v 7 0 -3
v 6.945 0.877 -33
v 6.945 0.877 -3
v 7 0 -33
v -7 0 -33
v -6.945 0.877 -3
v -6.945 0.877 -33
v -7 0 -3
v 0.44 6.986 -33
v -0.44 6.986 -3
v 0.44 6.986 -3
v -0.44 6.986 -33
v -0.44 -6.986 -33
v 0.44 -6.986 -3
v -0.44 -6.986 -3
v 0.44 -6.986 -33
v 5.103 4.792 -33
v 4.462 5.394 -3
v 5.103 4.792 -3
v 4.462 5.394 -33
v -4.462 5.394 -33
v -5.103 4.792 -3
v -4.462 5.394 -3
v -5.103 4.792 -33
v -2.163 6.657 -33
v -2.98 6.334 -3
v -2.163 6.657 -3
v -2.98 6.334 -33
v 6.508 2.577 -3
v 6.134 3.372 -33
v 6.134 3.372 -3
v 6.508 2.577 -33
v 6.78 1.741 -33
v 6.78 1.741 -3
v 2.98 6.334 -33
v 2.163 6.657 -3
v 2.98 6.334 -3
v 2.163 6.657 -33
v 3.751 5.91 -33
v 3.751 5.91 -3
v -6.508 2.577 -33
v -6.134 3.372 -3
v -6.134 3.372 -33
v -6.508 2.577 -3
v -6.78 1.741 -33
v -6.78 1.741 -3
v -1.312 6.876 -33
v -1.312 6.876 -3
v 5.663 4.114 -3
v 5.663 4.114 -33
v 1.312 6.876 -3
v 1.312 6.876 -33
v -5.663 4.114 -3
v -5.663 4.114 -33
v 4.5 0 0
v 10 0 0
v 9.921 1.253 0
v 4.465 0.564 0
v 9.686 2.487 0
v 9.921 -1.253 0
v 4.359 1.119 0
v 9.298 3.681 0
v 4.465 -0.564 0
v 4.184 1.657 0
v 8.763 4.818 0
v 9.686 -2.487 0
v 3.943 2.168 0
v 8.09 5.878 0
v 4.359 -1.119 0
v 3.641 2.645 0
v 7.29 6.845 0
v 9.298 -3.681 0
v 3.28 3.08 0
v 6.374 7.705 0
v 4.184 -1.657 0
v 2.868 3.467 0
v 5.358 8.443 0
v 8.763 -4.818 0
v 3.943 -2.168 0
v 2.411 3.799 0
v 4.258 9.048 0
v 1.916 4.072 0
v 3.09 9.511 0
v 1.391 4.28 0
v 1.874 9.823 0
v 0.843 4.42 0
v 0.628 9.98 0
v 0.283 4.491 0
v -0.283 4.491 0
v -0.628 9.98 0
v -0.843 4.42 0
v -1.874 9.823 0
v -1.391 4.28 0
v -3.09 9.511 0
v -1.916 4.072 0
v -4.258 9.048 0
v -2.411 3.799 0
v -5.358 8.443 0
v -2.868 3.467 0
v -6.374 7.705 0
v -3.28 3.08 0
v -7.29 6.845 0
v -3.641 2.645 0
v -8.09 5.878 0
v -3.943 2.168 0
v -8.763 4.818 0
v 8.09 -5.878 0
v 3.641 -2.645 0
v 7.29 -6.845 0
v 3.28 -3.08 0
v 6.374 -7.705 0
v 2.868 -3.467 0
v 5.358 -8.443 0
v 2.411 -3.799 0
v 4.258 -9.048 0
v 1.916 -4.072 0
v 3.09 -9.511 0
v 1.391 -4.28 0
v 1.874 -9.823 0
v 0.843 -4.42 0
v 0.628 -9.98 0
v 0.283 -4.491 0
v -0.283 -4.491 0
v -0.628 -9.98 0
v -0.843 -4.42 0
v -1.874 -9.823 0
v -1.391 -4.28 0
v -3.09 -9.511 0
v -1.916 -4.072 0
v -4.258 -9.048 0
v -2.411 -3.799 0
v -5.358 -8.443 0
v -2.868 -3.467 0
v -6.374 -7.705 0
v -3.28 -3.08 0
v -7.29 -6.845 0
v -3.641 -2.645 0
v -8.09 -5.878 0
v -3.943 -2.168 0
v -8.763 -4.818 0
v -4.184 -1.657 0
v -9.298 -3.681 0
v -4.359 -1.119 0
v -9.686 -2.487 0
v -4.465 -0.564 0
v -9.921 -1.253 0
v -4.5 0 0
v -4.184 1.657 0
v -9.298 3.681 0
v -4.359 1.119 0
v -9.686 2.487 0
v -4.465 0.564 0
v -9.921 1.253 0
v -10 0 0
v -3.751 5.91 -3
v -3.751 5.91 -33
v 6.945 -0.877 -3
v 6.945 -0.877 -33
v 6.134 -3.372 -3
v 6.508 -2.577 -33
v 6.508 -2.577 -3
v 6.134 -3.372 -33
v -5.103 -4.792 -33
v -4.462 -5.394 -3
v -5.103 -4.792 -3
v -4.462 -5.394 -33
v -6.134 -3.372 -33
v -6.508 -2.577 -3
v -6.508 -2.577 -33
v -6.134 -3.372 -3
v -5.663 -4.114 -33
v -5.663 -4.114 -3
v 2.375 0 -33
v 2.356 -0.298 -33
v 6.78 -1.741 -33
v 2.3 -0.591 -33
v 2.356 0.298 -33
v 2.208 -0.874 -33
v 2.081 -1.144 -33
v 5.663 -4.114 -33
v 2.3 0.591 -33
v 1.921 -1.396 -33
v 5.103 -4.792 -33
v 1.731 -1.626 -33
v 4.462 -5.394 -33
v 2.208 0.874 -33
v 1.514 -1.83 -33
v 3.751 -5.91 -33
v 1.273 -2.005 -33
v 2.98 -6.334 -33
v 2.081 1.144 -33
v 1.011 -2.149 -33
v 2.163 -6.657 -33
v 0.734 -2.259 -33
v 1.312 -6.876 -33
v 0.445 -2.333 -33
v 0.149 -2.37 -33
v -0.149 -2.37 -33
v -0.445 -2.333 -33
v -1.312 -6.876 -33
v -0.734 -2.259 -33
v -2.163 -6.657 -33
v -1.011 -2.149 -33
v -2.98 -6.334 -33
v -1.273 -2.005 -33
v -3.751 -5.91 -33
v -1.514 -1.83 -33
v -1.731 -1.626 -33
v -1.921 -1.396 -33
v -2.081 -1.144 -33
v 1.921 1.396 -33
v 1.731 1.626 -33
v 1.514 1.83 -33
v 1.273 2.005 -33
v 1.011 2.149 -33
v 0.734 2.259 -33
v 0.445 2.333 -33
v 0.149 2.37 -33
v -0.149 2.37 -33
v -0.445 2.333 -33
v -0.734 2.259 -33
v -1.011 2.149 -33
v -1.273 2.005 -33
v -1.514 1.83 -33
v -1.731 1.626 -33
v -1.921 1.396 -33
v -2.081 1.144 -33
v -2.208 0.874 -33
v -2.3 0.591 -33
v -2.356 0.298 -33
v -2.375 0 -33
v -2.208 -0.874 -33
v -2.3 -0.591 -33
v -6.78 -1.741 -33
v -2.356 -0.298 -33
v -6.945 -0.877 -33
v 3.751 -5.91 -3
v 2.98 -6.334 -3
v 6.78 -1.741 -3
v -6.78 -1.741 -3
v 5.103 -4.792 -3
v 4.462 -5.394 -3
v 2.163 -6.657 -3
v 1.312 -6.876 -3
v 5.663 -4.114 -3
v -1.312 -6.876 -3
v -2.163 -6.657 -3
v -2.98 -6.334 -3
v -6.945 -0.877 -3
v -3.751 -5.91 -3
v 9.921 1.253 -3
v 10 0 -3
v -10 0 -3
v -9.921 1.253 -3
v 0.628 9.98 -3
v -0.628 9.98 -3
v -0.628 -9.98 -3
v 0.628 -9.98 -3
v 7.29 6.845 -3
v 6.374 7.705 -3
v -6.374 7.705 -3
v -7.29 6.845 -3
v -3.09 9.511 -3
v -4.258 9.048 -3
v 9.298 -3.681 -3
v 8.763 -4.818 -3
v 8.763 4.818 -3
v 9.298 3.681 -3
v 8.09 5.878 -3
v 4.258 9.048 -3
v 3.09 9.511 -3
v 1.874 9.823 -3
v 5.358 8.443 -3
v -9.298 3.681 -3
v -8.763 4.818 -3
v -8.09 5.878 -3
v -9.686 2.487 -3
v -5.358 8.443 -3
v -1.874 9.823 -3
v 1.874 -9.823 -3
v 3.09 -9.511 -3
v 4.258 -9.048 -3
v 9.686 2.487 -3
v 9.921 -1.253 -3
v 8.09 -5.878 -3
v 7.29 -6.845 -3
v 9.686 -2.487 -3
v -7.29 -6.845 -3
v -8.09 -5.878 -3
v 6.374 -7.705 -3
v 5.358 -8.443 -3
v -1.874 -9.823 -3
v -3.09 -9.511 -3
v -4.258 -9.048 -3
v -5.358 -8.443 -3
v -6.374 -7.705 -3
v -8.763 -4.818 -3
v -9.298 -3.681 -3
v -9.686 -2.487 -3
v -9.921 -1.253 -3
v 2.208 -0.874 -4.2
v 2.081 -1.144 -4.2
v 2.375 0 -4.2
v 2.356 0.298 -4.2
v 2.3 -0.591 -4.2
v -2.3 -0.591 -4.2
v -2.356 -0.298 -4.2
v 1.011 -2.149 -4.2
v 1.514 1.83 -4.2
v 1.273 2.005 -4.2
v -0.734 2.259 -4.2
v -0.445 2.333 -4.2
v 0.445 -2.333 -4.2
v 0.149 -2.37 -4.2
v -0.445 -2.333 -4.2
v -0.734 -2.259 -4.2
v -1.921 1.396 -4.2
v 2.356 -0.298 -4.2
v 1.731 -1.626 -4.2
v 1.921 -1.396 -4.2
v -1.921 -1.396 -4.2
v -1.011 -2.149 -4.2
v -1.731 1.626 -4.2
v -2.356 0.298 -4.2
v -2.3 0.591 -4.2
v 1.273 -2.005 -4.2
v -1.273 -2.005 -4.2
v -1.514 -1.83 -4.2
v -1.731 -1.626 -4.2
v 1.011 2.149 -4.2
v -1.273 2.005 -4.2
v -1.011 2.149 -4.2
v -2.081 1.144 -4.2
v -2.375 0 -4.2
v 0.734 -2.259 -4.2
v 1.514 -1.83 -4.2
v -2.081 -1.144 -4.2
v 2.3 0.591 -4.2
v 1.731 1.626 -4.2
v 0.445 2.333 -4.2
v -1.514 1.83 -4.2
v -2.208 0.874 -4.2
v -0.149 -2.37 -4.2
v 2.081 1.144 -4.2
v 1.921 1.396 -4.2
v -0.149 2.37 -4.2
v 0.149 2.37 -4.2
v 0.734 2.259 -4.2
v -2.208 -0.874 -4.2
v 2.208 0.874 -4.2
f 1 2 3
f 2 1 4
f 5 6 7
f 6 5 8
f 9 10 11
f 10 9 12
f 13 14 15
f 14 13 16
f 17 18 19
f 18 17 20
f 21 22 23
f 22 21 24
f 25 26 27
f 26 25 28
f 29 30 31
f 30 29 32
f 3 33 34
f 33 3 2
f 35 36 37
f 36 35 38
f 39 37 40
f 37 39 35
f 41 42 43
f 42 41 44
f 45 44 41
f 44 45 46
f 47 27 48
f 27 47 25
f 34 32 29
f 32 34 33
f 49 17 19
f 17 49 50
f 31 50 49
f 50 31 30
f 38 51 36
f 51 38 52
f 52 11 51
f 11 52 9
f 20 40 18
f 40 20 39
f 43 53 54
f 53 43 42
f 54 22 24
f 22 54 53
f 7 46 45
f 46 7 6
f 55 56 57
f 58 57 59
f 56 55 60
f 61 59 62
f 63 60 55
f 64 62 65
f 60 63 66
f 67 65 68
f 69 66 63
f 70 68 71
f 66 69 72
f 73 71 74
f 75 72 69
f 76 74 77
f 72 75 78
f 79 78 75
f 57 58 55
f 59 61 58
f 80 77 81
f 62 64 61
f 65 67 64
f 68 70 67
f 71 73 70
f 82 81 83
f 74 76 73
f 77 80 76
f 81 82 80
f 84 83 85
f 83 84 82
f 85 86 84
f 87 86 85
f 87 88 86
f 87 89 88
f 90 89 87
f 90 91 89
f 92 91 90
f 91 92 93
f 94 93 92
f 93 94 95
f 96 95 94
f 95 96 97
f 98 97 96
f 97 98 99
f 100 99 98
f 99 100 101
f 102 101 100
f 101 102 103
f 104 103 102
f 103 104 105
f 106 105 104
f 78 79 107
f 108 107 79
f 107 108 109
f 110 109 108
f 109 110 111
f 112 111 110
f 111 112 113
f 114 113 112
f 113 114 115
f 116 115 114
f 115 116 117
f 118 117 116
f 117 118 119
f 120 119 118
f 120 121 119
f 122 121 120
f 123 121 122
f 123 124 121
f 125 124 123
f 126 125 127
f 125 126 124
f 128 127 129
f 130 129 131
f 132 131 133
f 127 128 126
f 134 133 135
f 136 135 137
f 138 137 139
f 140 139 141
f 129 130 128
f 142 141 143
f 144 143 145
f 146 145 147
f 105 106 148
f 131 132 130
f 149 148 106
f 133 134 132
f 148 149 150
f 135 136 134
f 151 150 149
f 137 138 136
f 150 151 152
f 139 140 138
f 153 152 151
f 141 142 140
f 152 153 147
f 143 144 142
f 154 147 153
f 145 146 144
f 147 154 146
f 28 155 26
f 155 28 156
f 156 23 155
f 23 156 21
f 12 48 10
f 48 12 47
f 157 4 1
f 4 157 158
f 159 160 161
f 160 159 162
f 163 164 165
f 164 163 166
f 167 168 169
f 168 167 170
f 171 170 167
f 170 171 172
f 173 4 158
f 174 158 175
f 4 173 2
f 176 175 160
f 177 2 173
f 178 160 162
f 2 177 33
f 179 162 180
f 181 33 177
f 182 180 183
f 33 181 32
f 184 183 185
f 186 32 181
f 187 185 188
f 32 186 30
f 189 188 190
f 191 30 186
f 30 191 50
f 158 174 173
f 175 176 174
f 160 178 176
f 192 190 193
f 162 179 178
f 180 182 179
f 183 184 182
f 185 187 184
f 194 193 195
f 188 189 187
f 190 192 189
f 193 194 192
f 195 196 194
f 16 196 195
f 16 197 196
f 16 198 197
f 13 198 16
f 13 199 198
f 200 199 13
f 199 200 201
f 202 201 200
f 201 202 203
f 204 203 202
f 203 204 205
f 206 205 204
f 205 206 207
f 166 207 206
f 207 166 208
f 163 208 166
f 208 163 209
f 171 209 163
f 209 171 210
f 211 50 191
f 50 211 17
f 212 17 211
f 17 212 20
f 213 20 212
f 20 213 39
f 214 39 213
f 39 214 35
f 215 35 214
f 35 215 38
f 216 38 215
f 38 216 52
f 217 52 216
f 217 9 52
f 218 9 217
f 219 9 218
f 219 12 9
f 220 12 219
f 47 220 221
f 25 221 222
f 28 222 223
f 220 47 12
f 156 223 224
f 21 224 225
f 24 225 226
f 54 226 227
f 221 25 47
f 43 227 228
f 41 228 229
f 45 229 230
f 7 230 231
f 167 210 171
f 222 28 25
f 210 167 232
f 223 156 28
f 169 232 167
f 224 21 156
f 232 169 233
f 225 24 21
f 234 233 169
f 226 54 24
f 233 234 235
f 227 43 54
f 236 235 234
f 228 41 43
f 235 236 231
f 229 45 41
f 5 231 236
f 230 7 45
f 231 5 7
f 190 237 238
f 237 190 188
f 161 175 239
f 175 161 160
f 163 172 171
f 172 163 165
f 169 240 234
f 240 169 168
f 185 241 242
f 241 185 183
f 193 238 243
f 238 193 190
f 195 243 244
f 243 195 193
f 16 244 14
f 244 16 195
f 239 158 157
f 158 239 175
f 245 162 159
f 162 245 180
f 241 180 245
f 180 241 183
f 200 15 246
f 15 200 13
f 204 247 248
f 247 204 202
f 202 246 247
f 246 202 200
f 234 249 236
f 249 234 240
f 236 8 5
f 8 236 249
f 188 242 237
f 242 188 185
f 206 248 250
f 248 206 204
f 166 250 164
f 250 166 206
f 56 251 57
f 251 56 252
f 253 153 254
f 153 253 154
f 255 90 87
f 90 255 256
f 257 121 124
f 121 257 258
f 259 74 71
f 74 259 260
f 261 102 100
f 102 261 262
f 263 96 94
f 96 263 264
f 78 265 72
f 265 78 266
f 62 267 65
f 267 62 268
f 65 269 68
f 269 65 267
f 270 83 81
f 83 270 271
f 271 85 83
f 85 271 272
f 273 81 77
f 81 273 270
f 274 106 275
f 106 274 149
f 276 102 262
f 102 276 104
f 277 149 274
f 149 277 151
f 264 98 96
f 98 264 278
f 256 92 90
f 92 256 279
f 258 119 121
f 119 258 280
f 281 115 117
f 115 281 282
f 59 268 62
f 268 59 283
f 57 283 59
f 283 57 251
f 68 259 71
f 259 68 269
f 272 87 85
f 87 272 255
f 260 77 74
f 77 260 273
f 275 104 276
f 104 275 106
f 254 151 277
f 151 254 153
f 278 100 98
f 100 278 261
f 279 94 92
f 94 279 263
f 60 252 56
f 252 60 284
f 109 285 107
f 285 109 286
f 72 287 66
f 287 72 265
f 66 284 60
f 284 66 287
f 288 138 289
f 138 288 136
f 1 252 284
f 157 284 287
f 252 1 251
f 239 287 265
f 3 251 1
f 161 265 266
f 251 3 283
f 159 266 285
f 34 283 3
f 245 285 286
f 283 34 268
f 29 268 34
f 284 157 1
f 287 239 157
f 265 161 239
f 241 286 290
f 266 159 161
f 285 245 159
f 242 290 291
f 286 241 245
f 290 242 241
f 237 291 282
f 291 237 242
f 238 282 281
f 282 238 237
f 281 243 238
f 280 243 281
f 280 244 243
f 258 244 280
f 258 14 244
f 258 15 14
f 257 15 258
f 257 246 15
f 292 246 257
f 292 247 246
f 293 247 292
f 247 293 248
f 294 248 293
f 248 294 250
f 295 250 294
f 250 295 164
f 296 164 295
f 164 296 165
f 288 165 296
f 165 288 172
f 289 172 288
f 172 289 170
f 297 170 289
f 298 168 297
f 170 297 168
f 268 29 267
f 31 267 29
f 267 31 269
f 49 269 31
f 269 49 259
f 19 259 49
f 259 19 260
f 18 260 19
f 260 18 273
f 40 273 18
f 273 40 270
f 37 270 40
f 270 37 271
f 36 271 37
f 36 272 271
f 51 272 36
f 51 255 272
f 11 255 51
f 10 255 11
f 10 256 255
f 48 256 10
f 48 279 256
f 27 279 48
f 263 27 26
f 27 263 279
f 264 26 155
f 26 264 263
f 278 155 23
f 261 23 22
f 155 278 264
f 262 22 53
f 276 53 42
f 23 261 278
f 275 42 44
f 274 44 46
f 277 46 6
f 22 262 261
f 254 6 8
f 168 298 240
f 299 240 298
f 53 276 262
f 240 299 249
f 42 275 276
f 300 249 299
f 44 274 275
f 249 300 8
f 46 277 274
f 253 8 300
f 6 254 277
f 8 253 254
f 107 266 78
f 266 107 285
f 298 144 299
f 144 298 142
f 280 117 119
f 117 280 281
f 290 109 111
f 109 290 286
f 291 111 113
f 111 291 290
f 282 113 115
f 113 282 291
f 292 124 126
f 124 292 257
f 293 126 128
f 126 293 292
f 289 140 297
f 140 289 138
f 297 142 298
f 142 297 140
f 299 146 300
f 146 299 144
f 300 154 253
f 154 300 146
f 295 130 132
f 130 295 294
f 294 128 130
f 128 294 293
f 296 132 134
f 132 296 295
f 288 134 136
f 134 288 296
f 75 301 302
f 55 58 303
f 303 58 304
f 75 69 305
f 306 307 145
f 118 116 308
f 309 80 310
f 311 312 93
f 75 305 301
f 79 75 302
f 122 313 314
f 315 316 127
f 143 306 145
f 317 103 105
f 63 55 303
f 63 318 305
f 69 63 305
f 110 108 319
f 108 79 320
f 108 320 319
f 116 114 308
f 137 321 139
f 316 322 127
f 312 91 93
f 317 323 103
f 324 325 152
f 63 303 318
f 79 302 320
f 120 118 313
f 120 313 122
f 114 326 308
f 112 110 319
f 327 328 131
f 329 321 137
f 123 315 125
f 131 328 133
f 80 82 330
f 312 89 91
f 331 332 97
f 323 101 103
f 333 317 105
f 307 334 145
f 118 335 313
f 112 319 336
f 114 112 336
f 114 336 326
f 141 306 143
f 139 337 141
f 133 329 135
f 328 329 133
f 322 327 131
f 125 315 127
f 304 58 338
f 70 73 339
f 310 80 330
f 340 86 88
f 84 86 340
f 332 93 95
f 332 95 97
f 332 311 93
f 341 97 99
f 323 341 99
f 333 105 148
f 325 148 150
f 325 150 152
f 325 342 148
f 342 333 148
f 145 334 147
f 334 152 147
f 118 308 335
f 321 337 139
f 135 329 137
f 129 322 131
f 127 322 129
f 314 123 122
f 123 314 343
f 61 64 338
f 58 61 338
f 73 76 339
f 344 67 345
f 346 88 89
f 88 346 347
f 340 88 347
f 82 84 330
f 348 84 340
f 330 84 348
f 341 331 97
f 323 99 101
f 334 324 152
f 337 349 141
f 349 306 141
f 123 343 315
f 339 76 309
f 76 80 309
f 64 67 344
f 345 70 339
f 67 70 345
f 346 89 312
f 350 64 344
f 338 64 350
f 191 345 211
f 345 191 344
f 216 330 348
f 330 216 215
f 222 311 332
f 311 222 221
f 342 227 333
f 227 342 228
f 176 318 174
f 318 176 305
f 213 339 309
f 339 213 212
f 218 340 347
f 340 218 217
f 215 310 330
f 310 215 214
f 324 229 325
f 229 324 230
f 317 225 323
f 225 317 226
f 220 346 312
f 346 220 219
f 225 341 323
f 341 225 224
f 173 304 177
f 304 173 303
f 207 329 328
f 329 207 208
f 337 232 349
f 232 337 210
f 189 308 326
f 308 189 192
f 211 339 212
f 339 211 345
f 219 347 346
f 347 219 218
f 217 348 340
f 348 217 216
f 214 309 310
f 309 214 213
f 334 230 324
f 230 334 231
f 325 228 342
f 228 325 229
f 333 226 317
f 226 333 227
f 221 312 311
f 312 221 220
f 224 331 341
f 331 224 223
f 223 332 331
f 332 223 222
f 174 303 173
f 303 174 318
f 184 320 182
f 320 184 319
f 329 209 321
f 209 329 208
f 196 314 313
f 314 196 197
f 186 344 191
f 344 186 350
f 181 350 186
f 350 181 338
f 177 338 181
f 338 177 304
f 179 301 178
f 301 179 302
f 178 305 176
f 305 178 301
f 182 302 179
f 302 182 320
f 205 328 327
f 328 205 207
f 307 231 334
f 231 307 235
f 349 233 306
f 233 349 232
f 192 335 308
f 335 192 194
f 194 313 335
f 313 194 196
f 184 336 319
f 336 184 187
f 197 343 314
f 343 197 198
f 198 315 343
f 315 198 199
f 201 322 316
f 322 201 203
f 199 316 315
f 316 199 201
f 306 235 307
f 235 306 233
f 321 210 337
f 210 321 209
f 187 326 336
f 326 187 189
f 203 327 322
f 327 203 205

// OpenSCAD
$fn = 50;


difference() {
	union() {
		translate(v = [0, 0, -33.0000000000]) {
			cylinder(h = 33, r = 7.0000000000);
		}
		translate(v = [0, 0, -3.0000000000]) {
			cylinder(h = 3, r = 10.0000000000);
		}
	}
	union() {
		translate(v = [0, 0, 0]) {
			rotate(a = [0, 0, 0]) {
				difference() {
					union() {
						#translate(v = [0, 0, -33.0000000000]) {
							cylinder(h = 33, r = 2.2500000000);
						}
						#translate(v = [0, 0, -4.2000000000]) {
							cylinder(h = 4.2000000000, r1 = 2.3750000000, r2 = 4.5000000000);
						}
						#translate(v = [0, 0, -33.0000000000]) {
							cylinder(h = 33, r = 2.3750000000);
						}
						#translate(v = [0, 0, -33.0000000000]) {
							cylinder(h = 33, r = 2.2500000000);
						}
					}
					union();
				}
			}
		}
	}
}
